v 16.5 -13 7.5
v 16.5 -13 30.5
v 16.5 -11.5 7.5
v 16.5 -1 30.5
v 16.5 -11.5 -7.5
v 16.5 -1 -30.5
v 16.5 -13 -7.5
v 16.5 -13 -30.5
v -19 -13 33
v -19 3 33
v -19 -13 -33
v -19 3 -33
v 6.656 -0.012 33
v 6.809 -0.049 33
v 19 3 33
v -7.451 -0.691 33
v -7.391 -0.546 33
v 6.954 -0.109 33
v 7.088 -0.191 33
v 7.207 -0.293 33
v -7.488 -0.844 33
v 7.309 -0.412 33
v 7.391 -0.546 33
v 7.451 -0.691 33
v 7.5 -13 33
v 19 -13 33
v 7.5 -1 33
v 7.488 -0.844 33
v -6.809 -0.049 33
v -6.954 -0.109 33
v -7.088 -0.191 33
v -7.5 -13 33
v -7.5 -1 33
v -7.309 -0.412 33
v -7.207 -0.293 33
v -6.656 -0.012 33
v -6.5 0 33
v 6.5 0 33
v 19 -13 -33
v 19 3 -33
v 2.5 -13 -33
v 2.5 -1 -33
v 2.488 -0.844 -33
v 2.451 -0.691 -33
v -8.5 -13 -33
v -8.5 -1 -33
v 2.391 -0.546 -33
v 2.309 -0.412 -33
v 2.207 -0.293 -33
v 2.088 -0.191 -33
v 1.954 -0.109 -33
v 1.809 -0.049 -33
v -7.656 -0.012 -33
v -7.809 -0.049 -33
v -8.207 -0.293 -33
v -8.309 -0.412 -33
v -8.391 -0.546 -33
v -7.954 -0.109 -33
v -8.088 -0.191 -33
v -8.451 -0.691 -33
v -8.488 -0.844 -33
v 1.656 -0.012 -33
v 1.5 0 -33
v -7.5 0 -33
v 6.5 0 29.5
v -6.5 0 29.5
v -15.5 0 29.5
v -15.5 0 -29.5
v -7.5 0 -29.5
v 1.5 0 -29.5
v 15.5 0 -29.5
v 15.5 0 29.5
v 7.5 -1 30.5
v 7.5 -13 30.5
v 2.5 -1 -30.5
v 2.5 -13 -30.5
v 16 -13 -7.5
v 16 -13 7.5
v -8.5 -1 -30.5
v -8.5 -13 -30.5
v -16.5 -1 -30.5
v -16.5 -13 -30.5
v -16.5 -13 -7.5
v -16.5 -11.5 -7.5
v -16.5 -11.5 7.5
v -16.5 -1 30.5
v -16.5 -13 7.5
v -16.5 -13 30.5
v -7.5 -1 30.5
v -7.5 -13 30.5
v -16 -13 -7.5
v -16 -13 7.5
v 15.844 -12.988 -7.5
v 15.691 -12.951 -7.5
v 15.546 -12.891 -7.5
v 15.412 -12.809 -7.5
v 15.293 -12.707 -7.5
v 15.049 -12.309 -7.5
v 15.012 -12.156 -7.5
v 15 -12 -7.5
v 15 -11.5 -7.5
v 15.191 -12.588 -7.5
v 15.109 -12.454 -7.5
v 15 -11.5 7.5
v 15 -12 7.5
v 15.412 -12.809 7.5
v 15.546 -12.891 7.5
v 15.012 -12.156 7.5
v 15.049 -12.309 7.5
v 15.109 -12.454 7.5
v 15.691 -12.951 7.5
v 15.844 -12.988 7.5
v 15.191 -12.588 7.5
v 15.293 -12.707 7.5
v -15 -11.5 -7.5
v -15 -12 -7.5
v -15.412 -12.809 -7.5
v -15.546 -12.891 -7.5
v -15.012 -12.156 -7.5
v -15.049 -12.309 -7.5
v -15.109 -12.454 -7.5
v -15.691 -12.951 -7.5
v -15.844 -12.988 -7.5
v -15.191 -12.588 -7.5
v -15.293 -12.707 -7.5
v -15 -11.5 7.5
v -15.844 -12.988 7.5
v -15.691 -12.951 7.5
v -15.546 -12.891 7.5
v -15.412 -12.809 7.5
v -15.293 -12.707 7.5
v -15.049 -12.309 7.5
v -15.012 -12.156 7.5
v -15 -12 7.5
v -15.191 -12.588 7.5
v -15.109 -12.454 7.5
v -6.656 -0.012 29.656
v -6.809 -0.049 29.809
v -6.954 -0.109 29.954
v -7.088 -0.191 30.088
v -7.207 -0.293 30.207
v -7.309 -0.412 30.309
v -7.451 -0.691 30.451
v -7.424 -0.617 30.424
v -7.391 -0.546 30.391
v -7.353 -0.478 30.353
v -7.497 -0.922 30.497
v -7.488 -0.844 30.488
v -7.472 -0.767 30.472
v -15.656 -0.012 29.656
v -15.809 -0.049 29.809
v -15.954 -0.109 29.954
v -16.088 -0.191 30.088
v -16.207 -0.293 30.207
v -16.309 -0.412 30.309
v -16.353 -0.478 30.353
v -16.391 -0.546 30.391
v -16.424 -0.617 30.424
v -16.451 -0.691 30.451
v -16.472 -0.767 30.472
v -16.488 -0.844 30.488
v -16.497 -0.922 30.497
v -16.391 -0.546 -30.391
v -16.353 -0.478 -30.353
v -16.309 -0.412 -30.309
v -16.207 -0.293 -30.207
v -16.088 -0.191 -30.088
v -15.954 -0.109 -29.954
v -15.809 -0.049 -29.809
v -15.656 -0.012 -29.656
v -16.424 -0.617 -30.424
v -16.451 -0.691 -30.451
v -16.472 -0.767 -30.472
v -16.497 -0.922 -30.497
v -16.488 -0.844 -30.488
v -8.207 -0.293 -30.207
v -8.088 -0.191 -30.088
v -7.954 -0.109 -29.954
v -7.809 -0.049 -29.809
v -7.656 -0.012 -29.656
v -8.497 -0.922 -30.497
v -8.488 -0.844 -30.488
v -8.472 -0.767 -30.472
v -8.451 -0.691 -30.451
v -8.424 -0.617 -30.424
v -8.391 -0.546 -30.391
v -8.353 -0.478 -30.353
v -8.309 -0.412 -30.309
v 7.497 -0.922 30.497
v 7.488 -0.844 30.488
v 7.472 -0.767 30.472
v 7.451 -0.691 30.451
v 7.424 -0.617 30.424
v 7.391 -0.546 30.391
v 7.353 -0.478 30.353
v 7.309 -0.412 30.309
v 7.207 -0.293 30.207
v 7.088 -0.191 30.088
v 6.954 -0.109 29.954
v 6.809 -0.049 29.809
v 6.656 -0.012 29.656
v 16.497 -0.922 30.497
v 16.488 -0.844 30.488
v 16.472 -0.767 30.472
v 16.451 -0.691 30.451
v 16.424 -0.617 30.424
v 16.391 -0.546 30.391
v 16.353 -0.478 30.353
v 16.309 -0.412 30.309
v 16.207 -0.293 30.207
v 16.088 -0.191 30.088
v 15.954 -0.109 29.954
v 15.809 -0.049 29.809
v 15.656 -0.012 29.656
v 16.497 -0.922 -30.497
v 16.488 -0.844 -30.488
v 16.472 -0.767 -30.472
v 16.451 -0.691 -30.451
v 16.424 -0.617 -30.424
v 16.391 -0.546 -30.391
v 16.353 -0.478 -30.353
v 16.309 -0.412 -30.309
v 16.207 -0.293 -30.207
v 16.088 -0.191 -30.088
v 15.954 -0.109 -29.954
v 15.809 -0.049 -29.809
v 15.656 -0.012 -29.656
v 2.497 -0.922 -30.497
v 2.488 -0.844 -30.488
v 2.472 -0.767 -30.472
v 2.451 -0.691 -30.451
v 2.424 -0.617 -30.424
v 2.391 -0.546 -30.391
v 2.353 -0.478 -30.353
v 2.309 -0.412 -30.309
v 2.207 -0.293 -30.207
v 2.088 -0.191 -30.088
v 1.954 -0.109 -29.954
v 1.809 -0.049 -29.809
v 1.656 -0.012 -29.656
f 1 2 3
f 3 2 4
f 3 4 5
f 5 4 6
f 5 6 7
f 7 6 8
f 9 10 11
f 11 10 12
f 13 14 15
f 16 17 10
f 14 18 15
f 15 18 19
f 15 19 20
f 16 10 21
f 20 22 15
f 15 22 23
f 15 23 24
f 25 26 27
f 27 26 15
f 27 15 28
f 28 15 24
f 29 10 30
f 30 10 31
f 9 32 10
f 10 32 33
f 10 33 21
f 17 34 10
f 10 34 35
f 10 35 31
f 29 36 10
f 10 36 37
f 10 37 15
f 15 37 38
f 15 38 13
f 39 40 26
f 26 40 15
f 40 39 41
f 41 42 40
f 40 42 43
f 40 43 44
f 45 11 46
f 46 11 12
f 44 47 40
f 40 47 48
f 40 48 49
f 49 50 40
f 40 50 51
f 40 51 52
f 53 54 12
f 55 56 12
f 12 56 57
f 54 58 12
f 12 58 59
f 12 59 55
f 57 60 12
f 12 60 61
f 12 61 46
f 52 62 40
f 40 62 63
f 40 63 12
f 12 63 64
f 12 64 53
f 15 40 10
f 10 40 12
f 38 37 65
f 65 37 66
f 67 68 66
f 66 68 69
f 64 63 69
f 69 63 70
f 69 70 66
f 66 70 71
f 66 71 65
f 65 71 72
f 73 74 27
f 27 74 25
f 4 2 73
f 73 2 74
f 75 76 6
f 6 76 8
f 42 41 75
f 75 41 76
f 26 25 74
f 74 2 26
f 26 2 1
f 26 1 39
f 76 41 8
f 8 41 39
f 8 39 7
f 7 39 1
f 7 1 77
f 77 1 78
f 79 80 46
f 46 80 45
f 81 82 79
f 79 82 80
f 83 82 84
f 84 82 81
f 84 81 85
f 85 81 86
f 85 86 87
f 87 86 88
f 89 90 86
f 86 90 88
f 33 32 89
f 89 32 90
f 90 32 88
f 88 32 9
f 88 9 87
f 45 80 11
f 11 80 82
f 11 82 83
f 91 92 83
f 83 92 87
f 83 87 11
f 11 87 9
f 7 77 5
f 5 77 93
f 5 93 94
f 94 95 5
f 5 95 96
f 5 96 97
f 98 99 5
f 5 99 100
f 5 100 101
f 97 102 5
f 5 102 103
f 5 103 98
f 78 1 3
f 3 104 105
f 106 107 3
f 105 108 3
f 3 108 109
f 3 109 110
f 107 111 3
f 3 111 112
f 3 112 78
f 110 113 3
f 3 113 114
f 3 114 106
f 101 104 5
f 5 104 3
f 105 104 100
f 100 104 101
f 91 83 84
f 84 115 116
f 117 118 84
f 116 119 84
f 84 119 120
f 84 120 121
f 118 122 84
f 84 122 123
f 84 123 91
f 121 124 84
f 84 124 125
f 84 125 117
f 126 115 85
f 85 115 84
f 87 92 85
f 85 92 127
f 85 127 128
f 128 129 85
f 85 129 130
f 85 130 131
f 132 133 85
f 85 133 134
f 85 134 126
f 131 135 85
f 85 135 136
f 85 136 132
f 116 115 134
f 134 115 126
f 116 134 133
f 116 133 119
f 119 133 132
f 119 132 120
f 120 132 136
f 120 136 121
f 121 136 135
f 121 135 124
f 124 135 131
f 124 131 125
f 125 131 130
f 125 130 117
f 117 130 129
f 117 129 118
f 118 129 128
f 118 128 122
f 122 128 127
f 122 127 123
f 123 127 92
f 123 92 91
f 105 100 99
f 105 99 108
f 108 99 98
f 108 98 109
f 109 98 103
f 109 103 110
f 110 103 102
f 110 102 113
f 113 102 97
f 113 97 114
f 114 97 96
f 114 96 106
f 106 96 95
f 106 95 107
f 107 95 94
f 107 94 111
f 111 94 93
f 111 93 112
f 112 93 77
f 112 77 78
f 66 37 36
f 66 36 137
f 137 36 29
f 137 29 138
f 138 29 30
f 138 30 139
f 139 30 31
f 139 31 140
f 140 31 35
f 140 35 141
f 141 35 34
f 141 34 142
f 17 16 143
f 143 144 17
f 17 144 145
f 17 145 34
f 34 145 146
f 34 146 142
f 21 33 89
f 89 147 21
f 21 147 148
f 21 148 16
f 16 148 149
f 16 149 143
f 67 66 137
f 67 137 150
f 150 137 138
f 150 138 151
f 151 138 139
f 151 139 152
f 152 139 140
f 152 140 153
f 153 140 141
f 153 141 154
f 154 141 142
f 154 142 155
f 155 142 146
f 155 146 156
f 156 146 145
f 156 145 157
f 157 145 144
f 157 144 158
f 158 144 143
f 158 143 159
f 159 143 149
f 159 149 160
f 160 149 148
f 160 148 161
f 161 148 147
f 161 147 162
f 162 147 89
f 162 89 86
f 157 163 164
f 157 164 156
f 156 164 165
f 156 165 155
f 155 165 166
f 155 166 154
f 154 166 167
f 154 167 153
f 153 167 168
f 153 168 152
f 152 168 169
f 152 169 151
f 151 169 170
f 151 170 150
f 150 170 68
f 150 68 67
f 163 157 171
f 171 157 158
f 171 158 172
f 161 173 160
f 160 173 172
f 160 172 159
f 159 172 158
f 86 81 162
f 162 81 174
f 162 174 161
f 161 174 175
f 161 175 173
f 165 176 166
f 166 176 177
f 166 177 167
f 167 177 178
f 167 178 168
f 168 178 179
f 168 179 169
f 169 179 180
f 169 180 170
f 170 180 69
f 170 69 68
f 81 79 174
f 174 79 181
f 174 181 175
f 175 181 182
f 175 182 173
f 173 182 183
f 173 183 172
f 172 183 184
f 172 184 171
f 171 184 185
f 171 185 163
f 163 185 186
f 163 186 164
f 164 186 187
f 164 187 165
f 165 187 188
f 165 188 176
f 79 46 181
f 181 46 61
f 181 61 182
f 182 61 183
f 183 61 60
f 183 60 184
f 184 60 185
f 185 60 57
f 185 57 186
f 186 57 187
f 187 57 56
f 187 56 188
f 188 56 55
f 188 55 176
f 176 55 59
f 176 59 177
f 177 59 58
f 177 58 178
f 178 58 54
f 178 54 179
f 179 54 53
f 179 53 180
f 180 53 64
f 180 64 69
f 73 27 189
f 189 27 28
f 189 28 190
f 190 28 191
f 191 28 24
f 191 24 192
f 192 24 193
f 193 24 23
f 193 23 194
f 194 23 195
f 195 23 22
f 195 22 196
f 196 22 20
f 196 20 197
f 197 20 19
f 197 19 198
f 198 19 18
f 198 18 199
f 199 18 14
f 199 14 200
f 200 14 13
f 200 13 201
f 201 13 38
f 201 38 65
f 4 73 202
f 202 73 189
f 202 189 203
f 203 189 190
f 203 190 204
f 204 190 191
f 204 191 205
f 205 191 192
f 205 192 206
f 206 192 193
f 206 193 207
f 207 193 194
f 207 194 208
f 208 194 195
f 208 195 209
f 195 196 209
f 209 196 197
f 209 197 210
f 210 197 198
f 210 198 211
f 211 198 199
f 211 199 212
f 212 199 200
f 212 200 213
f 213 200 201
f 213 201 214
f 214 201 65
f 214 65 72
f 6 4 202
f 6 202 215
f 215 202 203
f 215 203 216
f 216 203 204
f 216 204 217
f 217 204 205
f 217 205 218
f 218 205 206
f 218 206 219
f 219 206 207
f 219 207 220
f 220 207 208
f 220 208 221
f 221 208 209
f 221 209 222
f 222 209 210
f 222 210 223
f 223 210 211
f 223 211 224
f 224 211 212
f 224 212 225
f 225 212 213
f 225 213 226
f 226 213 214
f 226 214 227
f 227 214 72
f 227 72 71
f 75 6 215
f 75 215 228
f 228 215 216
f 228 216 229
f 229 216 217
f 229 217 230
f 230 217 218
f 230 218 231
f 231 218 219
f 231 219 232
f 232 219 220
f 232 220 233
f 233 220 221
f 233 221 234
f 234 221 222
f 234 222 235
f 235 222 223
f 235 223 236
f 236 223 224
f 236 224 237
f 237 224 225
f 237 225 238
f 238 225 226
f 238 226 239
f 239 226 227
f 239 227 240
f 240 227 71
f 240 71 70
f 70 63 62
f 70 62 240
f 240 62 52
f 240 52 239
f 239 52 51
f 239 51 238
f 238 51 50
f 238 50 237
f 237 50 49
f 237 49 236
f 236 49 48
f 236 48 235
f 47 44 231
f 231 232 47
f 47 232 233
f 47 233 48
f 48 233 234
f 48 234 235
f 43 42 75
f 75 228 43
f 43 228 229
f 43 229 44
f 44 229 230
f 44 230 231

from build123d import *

# Parameters (mm, degrees)
SKETCH1_W           = 38
SKETCH1_H           = 66
BOSS_EXTRUDE1_DEPTH = 3
BOSS_EXTRUDE3_DEPTH = 13
SKETCH5_W           = 15
SKETCH5_H           = 1.5
BOSS_EXTRUDE4_DEPTH = 1.5
FILLET2_R           = 1
FILLET3_R           = 1


with BuildPart() as part:
    # Sketch1 → Boss-Extrude1 (new body)
    with BuildSketch(Plane(origin=(0, 0, 0), x_dir=(1, 0, 0), z_dir=(0, 1, 0))):
        Rectangle(SKETCH1_W, SKETCH1_H)
    extrude(amount=BOSS_EXTRUDE1_DEPTH)

    # Sketch2 → Boss-Extrude3 (add)
    with BuildSketch(Plane(origin=(0, 0, 0), x_dir=(1, 0, 0), z_dir=(0, 1, 0))):
        Polygon((2.5, 30.5), (2.5, 33), (19, 33), (19, -33), (7.5, -33), (7.5, -30.5), (16.5, -30.5), (16.5, 30.5), align=None)
        Polygon((-19, 33), (-19, -33), (-7.5, -33), (-7.5, -30.5), (-16.5, -30.5), (-16.5, 30.5), (-8.5, 30.5), (-8.5, 33), align=None)
    extrude(amount=-BOSS_EXTRUDE3_DEPTH)

    # Sketch5 → Boss-Extrude4 (add)
    with BuildSketch(Plane.ZY.offset(-16.5)):
        with Locations((0, -12.25)):
            Rectangle(SKETCH5_W, SKETCH5_H)
    boss_extrude4 = extrude(amount=BOSS_EXTRUDE4_DEPTH)

    # Mirror1: Boss-Extrude4 across plane
    add(boss_extrude4.mirror(Plane(origin=(0, 0, 0), x_dir=(0, 0, 1), z_dir=(1, 0, 0))))

    # Fillet2
    fillet2_edges = [part.edges().sort_by_distance(p)[0] for p in [
        (15, -13, 0),
        (-15, -13, 0),
    ]]
    fillet(fillet2_edges, radius=FILLET2_R)

    # Fillet3
    fillet3_edges = [part.edges().sort_by_distance(p)[0] for p in [
        (-8.5, 0, -31.75),
        (2.5, 0, -31.75),
        (-12.5, 0, -30.5),
        (9.5, 0, -30.5),
        (16.5, 0, 0),
        (7.5, 0, 31.75),
        (12, 0, 30.5),
        (-16.5, 0, 0),
        (-12, 0, 30.5),
        (-7.5, 0, 31.75),
    ]]
    fillet(fillet3_edges, radius=FILLET3_R)


solid = part.part
